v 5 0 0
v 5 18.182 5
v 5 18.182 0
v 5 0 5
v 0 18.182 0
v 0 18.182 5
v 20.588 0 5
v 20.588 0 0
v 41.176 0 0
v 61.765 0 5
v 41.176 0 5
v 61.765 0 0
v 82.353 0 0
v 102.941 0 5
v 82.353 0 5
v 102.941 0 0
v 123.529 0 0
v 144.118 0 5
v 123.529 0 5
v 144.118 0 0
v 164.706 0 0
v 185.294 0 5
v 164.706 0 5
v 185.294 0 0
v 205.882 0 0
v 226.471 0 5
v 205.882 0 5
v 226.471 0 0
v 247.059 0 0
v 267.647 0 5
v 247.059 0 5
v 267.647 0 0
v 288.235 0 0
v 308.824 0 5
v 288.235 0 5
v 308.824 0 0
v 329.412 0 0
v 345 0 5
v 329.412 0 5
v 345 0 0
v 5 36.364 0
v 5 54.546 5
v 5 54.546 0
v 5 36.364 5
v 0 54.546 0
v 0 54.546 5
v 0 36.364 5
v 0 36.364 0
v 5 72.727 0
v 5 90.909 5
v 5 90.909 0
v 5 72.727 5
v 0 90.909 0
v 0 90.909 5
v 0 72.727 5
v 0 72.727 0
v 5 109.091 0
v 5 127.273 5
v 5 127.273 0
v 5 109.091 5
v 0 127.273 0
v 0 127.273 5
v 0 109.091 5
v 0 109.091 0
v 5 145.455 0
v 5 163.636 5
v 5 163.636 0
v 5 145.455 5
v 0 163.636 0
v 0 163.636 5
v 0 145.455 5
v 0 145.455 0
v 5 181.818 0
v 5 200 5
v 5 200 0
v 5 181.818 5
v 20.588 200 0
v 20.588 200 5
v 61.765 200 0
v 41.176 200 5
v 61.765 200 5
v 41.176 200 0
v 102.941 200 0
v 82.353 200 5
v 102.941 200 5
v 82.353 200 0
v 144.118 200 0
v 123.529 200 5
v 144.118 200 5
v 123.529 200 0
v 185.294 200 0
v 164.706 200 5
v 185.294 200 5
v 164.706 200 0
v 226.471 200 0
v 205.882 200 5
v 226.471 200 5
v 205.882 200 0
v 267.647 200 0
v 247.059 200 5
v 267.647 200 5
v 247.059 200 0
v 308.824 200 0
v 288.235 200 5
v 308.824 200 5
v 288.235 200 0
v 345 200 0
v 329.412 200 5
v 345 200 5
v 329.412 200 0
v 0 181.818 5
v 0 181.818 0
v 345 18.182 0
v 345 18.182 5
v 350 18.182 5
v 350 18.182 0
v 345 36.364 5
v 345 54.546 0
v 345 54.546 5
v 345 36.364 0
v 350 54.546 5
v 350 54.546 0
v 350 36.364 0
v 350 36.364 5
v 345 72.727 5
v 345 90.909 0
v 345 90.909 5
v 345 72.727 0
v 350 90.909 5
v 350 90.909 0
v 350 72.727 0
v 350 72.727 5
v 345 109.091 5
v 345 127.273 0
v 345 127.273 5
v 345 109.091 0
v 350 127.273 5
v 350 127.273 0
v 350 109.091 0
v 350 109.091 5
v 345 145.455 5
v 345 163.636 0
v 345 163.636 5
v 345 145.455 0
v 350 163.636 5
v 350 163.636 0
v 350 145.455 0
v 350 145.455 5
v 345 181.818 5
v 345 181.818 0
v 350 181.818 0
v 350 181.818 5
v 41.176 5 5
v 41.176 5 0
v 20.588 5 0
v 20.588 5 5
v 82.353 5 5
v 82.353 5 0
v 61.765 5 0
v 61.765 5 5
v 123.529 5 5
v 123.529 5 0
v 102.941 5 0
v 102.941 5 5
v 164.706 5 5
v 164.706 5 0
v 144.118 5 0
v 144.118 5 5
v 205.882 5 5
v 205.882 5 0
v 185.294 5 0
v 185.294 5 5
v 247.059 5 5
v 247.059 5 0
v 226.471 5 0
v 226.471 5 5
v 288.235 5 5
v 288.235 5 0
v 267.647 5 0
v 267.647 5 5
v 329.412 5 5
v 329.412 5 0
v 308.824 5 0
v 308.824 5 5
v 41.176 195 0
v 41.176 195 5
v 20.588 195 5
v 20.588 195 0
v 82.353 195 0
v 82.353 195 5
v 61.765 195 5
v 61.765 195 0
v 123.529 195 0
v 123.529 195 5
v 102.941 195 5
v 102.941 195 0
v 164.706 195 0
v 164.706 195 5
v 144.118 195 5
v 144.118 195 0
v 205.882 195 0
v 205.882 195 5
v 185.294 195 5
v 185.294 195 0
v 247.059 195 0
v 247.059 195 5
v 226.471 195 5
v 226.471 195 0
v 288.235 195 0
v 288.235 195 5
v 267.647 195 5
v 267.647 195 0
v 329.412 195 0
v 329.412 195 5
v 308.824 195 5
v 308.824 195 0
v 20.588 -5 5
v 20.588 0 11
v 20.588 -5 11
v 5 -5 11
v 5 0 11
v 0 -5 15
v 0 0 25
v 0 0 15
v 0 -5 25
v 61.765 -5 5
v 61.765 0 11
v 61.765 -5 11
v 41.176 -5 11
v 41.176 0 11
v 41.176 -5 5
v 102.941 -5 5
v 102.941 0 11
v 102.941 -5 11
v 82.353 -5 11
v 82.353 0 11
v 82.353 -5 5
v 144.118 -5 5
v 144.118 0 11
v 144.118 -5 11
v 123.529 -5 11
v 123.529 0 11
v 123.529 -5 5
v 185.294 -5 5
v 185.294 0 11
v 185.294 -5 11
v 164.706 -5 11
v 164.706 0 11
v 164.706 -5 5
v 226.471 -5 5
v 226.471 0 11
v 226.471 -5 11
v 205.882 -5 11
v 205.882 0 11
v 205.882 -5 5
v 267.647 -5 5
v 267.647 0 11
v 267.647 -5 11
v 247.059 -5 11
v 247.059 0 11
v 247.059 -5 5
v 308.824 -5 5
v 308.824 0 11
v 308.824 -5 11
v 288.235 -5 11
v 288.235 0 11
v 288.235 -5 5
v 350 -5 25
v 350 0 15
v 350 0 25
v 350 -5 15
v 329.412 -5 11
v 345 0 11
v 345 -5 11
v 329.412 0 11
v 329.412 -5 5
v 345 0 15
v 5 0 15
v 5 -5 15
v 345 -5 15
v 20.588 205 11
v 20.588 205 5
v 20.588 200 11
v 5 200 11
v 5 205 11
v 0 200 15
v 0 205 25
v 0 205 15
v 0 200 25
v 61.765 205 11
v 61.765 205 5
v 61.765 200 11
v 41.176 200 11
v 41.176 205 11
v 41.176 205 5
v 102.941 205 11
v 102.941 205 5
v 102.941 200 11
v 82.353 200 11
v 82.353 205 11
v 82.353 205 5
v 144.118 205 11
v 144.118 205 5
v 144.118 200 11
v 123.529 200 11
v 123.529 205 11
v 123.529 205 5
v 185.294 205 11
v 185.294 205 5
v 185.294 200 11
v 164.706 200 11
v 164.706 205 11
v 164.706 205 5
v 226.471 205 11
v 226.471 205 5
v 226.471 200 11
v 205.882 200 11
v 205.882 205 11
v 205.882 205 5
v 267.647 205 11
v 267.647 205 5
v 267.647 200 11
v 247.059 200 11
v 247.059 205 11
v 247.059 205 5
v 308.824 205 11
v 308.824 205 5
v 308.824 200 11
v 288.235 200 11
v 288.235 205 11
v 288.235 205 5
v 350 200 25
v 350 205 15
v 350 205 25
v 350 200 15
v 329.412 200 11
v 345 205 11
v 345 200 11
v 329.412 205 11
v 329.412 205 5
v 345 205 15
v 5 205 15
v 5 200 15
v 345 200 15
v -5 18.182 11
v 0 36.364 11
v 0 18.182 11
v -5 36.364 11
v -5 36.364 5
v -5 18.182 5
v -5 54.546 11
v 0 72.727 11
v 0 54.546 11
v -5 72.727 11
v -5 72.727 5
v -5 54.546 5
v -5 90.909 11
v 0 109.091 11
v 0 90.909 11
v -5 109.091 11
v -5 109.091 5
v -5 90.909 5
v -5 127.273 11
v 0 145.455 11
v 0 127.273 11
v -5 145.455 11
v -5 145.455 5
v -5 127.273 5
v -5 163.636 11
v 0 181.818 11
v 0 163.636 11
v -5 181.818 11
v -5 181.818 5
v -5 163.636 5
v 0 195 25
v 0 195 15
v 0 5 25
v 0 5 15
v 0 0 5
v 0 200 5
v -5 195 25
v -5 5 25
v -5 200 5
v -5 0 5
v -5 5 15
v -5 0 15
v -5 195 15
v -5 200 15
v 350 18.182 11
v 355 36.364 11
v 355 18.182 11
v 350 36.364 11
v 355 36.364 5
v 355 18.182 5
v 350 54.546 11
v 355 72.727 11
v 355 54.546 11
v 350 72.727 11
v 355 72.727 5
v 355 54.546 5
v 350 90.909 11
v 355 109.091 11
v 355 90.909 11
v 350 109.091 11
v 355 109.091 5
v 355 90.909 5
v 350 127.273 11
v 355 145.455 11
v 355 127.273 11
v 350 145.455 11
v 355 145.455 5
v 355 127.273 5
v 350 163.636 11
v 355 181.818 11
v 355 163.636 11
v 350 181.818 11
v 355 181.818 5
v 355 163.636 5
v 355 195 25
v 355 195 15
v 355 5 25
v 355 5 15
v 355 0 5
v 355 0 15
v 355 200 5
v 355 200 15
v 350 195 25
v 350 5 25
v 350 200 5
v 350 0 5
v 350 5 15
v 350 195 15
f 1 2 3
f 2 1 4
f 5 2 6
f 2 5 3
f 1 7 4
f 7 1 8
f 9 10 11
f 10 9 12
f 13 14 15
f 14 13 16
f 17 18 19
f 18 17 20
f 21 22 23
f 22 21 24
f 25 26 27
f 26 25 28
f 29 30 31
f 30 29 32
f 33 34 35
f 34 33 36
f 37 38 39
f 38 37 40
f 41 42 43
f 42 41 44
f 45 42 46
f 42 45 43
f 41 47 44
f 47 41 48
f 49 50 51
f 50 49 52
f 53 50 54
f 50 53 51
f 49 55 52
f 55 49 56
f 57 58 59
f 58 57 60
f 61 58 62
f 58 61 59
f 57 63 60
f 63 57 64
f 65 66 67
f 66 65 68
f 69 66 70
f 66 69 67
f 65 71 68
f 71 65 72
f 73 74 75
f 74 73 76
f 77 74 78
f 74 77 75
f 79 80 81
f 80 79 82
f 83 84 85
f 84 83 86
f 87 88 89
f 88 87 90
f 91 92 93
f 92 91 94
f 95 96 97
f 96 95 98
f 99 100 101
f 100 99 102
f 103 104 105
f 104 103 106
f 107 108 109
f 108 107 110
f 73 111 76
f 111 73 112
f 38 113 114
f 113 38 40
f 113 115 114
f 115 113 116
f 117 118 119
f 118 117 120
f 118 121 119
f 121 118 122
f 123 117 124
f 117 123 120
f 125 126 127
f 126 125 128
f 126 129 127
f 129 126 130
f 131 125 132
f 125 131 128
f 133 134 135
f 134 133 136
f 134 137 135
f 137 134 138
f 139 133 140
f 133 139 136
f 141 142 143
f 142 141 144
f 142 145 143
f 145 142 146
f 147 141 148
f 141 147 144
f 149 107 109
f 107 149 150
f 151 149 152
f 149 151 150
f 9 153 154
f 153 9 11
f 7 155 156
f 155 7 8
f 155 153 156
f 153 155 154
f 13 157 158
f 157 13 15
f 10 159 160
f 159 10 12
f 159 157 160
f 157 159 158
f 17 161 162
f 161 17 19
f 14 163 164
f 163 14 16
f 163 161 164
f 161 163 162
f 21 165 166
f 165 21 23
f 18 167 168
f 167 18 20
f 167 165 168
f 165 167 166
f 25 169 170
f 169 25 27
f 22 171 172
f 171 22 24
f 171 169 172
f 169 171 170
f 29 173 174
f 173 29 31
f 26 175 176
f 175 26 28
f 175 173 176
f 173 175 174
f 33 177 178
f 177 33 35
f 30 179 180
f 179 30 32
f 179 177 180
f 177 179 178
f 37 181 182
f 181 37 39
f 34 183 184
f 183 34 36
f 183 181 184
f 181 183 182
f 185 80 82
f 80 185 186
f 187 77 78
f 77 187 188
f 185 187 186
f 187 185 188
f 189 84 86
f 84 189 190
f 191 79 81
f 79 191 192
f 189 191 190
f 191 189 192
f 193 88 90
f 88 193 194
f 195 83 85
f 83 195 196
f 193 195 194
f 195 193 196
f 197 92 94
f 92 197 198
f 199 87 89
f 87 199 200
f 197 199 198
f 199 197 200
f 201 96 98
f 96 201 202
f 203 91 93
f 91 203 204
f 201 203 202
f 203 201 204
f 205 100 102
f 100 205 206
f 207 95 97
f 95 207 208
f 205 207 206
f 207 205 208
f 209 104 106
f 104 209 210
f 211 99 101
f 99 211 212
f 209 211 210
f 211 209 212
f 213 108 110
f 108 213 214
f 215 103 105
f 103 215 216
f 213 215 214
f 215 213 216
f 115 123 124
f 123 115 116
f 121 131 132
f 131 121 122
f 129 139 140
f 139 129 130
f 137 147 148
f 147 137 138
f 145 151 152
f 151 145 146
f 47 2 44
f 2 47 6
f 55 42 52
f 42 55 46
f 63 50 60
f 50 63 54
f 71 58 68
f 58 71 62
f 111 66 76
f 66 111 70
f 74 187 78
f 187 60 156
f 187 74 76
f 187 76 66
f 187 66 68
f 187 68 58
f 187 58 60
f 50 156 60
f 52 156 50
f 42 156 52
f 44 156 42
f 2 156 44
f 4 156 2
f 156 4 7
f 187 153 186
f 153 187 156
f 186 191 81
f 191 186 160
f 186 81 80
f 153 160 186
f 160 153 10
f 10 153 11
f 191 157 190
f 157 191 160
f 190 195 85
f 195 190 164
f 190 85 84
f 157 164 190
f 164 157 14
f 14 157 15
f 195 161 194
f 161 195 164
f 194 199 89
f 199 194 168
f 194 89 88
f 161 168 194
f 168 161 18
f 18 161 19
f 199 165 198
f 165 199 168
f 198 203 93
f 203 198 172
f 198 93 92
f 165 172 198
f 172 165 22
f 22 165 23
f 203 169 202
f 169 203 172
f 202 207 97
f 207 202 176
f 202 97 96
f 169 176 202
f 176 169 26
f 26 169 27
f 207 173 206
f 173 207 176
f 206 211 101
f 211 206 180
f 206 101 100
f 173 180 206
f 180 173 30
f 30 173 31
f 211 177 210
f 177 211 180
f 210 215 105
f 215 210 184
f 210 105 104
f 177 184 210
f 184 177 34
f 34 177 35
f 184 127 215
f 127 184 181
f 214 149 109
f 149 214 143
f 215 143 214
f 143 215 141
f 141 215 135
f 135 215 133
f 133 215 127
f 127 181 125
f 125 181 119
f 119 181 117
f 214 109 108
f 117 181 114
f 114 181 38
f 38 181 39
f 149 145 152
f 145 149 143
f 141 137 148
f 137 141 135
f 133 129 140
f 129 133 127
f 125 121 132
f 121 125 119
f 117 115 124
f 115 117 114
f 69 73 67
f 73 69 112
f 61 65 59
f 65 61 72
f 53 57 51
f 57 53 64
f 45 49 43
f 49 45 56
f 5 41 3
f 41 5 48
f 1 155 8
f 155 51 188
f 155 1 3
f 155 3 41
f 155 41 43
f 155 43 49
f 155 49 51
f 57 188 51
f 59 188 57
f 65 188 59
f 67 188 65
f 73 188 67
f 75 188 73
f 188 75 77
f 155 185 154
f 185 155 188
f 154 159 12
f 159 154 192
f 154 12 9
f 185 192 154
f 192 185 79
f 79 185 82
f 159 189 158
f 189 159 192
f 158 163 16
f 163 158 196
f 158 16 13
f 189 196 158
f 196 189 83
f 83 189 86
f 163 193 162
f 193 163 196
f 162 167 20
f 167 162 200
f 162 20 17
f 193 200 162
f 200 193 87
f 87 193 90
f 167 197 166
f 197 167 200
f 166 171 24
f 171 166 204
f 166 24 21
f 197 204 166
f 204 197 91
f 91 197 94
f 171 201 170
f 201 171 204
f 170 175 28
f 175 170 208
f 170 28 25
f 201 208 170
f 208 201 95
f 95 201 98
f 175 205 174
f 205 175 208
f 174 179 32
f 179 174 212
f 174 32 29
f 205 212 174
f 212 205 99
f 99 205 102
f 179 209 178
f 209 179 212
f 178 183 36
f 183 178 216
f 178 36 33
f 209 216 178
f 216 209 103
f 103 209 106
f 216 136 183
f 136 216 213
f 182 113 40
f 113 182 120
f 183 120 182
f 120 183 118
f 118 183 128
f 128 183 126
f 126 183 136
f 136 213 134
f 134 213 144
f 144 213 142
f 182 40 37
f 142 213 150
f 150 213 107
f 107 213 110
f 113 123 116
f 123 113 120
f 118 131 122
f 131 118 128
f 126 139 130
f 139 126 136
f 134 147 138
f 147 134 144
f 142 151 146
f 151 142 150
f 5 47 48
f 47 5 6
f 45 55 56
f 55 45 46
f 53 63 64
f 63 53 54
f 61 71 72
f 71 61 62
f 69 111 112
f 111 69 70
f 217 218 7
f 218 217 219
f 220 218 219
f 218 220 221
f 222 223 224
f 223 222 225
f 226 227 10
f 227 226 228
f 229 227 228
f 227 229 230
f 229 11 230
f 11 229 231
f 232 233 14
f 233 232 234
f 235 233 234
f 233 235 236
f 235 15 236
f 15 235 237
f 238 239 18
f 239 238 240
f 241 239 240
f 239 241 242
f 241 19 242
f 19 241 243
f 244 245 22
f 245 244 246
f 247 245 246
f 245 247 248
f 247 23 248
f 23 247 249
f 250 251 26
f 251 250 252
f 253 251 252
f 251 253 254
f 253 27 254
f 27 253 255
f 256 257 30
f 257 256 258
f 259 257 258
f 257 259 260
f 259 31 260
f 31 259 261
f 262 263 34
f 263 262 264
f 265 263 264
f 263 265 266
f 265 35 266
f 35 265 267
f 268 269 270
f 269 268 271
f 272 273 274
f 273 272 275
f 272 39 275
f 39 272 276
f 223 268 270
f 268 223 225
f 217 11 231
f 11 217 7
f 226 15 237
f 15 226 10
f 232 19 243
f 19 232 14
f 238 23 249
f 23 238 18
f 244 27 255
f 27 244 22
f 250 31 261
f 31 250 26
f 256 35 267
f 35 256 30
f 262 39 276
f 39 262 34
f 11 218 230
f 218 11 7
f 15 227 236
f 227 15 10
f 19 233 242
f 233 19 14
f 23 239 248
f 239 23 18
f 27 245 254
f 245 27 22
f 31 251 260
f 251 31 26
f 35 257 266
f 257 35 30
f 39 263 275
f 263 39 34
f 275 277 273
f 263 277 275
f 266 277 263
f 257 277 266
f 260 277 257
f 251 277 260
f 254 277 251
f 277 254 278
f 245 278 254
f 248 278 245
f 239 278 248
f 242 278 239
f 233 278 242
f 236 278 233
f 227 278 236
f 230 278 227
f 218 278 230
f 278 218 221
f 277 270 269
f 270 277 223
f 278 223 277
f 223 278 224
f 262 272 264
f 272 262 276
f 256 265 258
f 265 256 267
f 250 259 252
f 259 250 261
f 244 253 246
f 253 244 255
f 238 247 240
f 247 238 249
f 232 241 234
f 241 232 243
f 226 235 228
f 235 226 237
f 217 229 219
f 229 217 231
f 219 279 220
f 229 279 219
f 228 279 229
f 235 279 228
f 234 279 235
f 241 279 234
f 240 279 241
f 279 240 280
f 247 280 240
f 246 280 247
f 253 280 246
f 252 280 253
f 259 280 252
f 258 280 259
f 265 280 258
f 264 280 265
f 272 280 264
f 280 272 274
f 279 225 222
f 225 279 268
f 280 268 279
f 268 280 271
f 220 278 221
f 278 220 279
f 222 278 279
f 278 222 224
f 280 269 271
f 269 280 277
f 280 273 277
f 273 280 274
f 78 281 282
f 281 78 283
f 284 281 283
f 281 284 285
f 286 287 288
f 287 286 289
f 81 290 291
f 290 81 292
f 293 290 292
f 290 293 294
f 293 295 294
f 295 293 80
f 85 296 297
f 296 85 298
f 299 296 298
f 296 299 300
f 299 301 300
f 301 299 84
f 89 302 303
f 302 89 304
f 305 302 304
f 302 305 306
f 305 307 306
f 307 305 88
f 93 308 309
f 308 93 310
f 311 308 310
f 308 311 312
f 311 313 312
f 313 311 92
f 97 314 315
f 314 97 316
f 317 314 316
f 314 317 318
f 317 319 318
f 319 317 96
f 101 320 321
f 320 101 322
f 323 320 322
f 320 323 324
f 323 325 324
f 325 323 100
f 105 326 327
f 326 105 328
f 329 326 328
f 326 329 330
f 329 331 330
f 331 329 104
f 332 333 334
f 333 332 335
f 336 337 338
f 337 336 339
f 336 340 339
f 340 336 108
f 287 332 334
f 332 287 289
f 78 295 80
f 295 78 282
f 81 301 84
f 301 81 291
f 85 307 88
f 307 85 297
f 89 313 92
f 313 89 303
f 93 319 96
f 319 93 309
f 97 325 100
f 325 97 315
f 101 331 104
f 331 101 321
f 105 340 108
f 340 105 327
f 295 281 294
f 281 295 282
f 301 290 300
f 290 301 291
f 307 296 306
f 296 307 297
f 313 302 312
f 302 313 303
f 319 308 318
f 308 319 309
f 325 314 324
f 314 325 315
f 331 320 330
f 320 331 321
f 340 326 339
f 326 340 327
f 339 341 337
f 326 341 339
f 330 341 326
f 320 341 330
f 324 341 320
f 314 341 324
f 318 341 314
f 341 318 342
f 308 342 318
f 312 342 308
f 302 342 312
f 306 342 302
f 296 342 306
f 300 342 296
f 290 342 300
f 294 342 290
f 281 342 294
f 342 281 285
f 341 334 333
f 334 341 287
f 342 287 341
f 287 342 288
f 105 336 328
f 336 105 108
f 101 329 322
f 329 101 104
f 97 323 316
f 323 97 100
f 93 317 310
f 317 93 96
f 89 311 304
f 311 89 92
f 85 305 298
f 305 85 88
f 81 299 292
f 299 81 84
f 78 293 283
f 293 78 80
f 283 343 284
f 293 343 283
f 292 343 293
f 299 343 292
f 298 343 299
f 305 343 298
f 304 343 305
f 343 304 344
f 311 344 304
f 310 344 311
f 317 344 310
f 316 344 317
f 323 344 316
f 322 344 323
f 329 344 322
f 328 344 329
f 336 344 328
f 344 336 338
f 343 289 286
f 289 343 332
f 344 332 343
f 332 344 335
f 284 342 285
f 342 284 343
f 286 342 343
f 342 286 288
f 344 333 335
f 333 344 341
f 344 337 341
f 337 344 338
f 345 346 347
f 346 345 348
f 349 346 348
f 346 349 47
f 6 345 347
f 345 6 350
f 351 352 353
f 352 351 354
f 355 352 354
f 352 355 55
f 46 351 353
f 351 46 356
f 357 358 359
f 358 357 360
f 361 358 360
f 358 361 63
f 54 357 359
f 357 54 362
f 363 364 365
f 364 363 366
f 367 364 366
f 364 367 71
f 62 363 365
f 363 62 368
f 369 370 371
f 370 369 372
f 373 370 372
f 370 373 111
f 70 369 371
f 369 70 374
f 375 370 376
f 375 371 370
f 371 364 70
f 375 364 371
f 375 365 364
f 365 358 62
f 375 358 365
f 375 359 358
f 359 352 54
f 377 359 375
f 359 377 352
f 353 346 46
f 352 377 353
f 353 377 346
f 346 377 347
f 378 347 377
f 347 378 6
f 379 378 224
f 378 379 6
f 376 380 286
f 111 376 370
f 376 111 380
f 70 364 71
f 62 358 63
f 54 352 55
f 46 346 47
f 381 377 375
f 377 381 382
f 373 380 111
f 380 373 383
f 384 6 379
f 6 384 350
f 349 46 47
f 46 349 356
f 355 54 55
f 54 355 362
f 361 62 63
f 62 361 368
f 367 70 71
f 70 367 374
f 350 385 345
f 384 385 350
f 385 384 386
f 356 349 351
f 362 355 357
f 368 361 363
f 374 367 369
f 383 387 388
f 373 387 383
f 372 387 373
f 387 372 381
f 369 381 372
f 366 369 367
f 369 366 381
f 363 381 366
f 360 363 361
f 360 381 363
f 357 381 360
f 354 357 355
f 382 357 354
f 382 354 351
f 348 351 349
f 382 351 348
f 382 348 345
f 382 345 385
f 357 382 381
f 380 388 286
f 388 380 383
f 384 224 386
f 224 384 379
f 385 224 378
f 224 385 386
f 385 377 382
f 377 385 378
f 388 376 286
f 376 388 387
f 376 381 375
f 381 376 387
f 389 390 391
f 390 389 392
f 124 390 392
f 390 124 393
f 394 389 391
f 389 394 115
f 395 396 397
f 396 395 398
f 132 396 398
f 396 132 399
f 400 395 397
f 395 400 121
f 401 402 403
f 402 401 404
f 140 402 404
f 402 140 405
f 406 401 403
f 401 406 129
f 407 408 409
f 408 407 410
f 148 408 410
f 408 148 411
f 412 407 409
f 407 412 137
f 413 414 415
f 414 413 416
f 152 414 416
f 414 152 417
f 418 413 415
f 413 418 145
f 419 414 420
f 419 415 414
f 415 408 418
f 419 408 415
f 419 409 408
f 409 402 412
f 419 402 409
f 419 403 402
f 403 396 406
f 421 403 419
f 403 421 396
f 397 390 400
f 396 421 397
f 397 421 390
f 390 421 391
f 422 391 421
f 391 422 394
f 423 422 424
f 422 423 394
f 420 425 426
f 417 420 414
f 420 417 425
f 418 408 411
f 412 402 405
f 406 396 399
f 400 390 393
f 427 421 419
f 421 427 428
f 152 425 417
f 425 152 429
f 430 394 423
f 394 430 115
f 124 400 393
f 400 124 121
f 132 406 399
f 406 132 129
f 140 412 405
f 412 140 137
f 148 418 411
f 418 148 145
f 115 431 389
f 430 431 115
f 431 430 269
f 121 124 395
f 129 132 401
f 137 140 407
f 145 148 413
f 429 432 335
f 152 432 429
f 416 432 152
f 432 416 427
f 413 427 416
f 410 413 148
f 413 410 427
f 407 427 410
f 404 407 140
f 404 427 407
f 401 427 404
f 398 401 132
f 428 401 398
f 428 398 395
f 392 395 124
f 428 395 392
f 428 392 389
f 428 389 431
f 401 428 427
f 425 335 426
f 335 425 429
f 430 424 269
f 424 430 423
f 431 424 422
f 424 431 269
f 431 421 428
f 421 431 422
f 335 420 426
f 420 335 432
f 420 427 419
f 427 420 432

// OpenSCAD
// file: lid.scad
length = 350;
width = 200;
height = 15;
thickness = 5;

width_cut_count = 5;
length_cut_count = 8;

module width_cut(offset, extra, outter) {
  cut_length = width / (width_cut_count * 2 + 1);
  for (i = [0:width_cut_count - (outter ? 1 : 0)]) {
    translate([offset, cut_length * (i * 2 + (outter ? 1 : 0)), -1]) cube([thickness + extra, cut_length, thickness + 2]);
  }
}

module length_cut(offset, extra, outter) {
  cut_width = length / (length_cut_count * 2 + 1);
  for (i = [0:length_cut_count - (outter ? 1 : 0)]) {
    translate([cut_width * (i * 2 + (outter ? 1 : 0)), offset, -1]) cube([cut_width, thickness + extra, thickness + 2]);
  }
}

module main_part() {
  difference() {
    cube([length, width, thickness]);
    width_cut(-1, 1, false);
    width_cut(length - thickness, 1, false);
    length_cut(-1, 1, true);
    length_cut(width - thickness, 1, true);
  }
}

module length_part() {
  difference() {
    cube([length, thickness, height + thickness]);
    length_cut(-1, 2, false);
    translate([-1, -1, -1]) cube([thickness + 1, thickness + 2, (height + thickness) / 2 + 1]);
    translate([length - thickness, -1, -1]) cube([thickness + 1, thickness + 2, (height + thickness) / 2 + 1]);
  }
}

module width_part() {
  difference() {
    translate([0, 0, 0]) cube([thickness, width, height + thickness]);
    width_cut(-1, 2, true);
    translate([-1, -1, (height + thickness) / 2]) cube([thickness + 2, thickness + 1, (height + thickness) / 2 + 1]);
    translate([-1, width - thickness, (height + thickness) / 2]) cube([thickness + 2, thickness + 1, (height + thickness) / 2 + 1]);
  }
}
// main file
include <lid.scad>

main_part();

translate([0, -thickness, thickness]) color("red") length_part();
translate([0, width, thickness]) color("red") length_part();

translate([-thickness, 0, thickness]) color("green") width_part();
translate([length, 0, thickness]) color("green") width_part();
